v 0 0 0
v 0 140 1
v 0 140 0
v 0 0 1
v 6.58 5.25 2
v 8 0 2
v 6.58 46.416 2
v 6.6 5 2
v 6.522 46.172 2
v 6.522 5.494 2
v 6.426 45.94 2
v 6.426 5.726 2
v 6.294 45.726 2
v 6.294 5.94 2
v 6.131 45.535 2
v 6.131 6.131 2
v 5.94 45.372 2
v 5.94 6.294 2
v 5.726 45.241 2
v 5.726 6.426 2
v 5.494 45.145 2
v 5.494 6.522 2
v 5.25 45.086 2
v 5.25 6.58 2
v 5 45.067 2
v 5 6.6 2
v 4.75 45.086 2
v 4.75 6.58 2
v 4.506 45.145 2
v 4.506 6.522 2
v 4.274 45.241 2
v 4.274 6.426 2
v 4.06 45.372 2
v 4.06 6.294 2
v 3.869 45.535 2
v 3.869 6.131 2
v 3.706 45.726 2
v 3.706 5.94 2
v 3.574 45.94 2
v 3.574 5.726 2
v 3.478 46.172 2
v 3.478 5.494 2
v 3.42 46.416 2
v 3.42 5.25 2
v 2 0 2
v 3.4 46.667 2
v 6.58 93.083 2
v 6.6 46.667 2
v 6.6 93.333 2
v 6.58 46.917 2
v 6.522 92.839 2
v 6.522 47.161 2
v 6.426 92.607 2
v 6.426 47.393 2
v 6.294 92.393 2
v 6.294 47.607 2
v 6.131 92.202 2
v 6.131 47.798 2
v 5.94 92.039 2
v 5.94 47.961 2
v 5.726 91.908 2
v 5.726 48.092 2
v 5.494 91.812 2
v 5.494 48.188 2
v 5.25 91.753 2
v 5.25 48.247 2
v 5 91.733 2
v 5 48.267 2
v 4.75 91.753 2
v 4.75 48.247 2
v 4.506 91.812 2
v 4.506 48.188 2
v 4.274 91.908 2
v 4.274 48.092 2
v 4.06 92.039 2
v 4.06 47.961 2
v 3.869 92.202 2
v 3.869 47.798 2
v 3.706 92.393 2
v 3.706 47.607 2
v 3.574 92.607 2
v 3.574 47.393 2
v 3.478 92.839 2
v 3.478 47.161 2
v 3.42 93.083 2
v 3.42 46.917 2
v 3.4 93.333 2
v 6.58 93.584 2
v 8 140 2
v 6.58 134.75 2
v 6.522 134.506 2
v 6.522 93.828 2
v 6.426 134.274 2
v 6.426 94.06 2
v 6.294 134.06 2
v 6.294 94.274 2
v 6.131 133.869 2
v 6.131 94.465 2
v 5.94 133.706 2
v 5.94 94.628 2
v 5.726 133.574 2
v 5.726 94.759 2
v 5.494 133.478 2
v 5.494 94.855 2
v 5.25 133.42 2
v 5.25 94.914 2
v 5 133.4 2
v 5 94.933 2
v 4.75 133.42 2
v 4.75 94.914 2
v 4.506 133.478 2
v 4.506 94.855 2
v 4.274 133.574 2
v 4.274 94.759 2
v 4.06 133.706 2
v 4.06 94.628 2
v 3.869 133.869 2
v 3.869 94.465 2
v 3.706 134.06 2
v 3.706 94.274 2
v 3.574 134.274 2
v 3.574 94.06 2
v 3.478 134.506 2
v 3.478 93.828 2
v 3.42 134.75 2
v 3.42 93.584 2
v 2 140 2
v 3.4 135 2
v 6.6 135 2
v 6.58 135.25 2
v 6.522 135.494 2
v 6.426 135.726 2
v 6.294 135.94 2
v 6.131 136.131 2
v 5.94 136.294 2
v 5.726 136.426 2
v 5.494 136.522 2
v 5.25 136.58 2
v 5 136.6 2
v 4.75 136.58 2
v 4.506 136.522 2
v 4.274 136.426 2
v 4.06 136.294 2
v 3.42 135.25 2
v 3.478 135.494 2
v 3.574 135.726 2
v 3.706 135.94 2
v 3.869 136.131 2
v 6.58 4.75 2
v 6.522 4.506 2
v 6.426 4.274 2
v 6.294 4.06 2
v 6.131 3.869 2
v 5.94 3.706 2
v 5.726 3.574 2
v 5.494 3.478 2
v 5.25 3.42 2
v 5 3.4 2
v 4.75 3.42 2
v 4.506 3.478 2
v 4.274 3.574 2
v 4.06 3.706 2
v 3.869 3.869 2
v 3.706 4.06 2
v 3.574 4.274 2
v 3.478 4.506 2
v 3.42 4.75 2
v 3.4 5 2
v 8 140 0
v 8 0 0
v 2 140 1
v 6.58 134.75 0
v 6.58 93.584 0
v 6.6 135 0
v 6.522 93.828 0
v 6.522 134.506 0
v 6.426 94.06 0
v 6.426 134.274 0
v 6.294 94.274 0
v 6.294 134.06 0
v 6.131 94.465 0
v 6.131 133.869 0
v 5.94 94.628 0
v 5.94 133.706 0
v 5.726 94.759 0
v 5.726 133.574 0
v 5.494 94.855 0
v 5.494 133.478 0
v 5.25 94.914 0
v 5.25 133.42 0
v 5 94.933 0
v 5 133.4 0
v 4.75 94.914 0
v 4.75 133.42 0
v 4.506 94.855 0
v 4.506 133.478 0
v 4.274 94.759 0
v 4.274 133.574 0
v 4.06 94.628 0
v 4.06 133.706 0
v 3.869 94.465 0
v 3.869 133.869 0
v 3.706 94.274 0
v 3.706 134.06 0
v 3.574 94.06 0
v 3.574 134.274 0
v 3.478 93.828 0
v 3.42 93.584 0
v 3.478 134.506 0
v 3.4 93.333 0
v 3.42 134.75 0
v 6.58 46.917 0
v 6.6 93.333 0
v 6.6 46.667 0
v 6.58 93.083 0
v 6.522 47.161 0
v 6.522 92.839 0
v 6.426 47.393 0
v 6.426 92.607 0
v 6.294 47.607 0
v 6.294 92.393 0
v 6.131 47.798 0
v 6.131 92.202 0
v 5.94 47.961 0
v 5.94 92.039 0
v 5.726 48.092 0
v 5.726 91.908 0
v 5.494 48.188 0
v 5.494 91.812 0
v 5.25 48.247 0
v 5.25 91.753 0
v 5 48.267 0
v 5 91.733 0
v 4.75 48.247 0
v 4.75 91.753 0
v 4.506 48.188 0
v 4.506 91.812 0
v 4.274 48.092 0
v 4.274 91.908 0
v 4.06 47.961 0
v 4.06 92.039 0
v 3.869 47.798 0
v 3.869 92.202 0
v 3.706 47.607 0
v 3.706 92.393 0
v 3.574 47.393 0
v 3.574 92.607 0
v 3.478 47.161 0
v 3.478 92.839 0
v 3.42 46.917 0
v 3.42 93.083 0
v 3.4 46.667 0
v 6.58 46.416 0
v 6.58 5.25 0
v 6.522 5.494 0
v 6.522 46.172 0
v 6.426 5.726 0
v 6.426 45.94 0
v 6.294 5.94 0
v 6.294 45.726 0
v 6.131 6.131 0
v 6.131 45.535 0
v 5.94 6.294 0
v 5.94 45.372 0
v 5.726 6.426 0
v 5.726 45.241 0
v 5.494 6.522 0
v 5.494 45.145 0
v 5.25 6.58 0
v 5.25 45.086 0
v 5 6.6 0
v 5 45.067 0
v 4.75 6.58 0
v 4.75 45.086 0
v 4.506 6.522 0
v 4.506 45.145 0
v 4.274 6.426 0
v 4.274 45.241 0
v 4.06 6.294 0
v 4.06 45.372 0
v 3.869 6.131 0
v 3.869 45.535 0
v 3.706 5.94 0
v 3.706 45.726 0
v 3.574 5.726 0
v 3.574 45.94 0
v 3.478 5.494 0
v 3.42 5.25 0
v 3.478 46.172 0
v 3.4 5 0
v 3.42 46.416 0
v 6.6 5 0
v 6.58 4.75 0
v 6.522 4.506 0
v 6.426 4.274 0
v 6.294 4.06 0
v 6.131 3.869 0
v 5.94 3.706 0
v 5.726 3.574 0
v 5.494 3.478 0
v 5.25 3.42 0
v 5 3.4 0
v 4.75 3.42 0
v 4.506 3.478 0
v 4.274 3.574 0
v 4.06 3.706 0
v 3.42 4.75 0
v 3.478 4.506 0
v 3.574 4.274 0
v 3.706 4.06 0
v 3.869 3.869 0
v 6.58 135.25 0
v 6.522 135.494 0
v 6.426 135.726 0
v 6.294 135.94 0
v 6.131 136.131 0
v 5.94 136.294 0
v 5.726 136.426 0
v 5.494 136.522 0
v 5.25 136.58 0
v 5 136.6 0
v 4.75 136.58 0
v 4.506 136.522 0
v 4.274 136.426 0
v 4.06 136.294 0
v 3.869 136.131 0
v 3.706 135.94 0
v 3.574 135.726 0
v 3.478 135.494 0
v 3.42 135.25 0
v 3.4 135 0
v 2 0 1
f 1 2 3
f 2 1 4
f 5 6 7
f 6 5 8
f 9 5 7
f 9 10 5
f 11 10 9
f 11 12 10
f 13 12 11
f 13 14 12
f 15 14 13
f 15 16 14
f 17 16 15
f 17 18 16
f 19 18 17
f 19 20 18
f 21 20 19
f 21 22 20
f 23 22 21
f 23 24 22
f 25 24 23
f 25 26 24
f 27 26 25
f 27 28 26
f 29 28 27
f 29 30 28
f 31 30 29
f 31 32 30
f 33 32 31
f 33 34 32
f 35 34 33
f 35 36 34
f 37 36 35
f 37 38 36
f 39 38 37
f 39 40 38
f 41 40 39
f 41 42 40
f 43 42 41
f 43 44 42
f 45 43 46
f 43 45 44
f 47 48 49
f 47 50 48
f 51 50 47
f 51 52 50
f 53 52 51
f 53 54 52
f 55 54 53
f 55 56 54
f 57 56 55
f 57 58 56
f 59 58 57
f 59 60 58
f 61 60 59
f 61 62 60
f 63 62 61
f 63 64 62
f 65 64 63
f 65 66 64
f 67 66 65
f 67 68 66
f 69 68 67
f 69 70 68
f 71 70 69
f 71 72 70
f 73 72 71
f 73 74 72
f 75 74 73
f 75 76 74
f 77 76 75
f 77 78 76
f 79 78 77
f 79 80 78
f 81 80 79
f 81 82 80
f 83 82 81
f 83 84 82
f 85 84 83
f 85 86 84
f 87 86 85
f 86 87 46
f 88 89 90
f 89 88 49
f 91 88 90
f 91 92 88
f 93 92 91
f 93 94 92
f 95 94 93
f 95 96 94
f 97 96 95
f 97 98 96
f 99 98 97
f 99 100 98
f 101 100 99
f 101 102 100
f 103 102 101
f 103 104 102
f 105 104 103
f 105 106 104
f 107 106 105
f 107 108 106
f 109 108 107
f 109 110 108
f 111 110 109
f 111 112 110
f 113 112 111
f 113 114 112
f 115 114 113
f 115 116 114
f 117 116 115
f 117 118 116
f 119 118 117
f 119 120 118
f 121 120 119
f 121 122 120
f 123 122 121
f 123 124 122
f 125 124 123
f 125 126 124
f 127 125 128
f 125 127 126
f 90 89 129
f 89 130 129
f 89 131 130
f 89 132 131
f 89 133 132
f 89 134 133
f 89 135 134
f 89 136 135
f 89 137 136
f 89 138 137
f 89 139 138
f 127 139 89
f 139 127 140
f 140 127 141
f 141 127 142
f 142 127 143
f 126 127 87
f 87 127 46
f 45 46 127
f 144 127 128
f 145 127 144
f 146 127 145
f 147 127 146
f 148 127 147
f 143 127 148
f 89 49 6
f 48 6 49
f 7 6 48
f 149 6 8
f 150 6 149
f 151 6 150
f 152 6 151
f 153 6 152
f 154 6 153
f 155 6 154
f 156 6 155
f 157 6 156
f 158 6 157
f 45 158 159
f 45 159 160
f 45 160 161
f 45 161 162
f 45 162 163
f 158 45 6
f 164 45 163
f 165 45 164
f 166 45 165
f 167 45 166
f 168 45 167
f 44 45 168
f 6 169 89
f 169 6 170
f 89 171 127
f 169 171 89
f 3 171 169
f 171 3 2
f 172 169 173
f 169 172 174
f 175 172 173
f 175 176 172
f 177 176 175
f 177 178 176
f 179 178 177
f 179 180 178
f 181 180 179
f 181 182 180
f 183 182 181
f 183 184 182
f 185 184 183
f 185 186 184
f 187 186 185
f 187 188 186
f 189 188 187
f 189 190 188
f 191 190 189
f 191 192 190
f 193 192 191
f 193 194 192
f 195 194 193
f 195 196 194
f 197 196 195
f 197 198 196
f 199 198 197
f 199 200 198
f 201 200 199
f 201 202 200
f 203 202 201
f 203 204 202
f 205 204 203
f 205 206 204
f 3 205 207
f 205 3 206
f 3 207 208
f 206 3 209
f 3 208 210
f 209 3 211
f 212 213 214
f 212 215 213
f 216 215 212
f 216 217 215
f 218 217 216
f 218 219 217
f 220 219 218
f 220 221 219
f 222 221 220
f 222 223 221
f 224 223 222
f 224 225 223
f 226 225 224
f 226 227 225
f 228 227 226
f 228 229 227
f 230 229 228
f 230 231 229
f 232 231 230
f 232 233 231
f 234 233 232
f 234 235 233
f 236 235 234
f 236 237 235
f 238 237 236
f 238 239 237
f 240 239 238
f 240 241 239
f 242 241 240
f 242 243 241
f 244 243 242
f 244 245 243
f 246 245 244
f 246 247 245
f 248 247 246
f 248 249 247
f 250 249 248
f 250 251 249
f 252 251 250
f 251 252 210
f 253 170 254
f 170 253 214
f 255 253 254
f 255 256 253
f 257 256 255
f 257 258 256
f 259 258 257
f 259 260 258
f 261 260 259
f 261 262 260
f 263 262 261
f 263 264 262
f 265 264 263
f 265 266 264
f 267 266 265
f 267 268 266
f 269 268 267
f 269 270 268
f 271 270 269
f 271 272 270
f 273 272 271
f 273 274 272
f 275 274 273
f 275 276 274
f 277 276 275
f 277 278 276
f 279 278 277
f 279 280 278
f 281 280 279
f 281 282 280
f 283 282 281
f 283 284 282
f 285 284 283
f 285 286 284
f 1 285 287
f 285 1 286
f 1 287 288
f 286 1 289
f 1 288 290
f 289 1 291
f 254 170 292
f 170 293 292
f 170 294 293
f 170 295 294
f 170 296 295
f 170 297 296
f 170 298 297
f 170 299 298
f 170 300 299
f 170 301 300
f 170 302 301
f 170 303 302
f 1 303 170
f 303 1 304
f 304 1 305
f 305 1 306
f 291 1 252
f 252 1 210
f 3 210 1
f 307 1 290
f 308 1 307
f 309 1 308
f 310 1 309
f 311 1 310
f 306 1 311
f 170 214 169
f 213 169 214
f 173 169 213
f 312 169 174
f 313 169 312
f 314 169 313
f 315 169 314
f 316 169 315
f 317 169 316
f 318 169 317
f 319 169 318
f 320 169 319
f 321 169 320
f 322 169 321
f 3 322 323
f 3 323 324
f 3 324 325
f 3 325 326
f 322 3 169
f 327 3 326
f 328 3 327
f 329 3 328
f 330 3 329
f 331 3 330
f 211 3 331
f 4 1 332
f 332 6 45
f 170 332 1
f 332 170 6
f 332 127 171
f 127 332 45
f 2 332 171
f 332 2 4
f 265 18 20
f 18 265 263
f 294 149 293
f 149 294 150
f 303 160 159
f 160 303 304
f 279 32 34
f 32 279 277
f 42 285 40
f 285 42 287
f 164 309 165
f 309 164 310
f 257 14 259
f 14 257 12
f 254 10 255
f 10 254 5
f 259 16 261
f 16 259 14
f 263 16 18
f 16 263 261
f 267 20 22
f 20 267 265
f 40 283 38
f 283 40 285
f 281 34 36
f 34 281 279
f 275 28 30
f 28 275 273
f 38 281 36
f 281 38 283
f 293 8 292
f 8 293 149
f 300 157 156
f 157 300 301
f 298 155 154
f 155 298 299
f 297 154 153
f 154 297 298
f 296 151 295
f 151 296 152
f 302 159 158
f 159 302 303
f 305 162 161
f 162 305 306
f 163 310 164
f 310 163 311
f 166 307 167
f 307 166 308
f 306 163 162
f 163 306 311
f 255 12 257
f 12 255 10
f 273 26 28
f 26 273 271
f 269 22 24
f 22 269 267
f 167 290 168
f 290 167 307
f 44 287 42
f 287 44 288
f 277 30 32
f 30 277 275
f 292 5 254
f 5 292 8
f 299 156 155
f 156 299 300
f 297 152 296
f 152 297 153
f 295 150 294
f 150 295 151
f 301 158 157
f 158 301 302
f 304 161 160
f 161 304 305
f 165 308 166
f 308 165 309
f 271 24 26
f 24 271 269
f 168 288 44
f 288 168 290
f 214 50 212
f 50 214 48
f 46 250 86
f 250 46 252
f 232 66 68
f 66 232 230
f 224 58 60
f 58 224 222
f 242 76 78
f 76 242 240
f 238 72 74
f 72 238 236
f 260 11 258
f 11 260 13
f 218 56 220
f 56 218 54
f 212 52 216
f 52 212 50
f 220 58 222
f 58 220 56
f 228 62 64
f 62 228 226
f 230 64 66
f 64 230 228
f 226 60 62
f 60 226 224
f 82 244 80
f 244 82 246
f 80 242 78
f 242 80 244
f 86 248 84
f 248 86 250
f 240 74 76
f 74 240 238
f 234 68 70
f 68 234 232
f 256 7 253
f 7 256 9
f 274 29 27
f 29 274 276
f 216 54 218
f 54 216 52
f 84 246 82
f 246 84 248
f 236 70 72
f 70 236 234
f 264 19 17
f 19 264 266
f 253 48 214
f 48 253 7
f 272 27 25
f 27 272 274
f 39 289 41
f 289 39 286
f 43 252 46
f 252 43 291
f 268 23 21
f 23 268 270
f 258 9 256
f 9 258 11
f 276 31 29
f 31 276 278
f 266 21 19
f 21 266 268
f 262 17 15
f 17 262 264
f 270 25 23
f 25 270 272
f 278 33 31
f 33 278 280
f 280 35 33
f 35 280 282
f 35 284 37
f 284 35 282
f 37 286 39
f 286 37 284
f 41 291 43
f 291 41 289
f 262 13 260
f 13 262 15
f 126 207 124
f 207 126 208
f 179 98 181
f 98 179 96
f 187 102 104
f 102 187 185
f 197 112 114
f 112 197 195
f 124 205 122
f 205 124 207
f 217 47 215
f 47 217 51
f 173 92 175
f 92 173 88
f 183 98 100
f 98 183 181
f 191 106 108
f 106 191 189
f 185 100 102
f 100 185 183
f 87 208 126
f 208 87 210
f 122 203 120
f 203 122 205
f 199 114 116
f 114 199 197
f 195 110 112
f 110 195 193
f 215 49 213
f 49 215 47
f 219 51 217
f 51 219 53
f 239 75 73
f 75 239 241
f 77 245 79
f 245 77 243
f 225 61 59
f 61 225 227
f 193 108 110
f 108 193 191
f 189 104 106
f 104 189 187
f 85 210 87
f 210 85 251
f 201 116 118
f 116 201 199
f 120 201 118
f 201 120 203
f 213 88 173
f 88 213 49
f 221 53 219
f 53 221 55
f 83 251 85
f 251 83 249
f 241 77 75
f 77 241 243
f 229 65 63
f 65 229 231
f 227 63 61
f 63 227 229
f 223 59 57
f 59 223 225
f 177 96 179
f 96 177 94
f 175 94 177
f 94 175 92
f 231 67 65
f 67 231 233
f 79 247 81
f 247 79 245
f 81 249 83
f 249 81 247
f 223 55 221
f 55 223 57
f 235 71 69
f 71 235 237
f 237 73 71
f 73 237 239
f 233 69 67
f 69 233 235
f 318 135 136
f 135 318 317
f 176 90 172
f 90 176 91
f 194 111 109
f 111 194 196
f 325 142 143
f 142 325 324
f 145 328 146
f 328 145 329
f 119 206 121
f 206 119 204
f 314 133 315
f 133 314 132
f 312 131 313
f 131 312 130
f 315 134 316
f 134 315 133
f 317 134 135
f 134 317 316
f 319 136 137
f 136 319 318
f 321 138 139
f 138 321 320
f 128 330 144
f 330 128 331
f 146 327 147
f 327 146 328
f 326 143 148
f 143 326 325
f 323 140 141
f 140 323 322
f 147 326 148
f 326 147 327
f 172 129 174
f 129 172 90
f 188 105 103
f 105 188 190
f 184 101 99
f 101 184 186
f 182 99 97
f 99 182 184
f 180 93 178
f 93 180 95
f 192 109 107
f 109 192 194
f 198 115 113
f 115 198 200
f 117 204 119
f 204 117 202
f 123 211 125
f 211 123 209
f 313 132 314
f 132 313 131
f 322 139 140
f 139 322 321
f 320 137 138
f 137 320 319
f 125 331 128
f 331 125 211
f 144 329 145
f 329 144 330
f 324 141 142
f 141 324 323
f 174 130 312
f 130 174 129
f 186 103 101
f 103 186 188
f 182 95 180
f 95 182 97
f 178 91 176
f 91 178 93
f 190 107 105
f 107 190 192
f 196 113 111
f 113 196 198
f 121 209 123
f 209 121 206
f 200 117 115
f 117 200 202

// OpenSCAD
// Designed by Stanley <stanoba@gmail.com>
// SMD Feeder Rail <smd_feeder_rail.scad>
// Version: 0.1
// Creative Commons - Attribution license
// https://www.thingiverse.com/stanoba/about
// SMD feeder rail for SMD feeders https://www.thingiverse.com/thing:2414955

length=140; // length in mm

difference(){
	cube([8,length,2]);
	translate([0,0,1]) cube([2,length,1]);
	translate([5,5,0]) cylinder(h=15, d=3.2, $fn=40);
	translate([5,length/3,0]) cylinder(h=15, d=3.2, $fn=40);
	translate([5,(length/3)*2,0]) cylinder(h=15, d=3.2, $fn=40);
	translate([5,length-5,0]) cylinder(h=15, d=3.2, $fn=40);
}
